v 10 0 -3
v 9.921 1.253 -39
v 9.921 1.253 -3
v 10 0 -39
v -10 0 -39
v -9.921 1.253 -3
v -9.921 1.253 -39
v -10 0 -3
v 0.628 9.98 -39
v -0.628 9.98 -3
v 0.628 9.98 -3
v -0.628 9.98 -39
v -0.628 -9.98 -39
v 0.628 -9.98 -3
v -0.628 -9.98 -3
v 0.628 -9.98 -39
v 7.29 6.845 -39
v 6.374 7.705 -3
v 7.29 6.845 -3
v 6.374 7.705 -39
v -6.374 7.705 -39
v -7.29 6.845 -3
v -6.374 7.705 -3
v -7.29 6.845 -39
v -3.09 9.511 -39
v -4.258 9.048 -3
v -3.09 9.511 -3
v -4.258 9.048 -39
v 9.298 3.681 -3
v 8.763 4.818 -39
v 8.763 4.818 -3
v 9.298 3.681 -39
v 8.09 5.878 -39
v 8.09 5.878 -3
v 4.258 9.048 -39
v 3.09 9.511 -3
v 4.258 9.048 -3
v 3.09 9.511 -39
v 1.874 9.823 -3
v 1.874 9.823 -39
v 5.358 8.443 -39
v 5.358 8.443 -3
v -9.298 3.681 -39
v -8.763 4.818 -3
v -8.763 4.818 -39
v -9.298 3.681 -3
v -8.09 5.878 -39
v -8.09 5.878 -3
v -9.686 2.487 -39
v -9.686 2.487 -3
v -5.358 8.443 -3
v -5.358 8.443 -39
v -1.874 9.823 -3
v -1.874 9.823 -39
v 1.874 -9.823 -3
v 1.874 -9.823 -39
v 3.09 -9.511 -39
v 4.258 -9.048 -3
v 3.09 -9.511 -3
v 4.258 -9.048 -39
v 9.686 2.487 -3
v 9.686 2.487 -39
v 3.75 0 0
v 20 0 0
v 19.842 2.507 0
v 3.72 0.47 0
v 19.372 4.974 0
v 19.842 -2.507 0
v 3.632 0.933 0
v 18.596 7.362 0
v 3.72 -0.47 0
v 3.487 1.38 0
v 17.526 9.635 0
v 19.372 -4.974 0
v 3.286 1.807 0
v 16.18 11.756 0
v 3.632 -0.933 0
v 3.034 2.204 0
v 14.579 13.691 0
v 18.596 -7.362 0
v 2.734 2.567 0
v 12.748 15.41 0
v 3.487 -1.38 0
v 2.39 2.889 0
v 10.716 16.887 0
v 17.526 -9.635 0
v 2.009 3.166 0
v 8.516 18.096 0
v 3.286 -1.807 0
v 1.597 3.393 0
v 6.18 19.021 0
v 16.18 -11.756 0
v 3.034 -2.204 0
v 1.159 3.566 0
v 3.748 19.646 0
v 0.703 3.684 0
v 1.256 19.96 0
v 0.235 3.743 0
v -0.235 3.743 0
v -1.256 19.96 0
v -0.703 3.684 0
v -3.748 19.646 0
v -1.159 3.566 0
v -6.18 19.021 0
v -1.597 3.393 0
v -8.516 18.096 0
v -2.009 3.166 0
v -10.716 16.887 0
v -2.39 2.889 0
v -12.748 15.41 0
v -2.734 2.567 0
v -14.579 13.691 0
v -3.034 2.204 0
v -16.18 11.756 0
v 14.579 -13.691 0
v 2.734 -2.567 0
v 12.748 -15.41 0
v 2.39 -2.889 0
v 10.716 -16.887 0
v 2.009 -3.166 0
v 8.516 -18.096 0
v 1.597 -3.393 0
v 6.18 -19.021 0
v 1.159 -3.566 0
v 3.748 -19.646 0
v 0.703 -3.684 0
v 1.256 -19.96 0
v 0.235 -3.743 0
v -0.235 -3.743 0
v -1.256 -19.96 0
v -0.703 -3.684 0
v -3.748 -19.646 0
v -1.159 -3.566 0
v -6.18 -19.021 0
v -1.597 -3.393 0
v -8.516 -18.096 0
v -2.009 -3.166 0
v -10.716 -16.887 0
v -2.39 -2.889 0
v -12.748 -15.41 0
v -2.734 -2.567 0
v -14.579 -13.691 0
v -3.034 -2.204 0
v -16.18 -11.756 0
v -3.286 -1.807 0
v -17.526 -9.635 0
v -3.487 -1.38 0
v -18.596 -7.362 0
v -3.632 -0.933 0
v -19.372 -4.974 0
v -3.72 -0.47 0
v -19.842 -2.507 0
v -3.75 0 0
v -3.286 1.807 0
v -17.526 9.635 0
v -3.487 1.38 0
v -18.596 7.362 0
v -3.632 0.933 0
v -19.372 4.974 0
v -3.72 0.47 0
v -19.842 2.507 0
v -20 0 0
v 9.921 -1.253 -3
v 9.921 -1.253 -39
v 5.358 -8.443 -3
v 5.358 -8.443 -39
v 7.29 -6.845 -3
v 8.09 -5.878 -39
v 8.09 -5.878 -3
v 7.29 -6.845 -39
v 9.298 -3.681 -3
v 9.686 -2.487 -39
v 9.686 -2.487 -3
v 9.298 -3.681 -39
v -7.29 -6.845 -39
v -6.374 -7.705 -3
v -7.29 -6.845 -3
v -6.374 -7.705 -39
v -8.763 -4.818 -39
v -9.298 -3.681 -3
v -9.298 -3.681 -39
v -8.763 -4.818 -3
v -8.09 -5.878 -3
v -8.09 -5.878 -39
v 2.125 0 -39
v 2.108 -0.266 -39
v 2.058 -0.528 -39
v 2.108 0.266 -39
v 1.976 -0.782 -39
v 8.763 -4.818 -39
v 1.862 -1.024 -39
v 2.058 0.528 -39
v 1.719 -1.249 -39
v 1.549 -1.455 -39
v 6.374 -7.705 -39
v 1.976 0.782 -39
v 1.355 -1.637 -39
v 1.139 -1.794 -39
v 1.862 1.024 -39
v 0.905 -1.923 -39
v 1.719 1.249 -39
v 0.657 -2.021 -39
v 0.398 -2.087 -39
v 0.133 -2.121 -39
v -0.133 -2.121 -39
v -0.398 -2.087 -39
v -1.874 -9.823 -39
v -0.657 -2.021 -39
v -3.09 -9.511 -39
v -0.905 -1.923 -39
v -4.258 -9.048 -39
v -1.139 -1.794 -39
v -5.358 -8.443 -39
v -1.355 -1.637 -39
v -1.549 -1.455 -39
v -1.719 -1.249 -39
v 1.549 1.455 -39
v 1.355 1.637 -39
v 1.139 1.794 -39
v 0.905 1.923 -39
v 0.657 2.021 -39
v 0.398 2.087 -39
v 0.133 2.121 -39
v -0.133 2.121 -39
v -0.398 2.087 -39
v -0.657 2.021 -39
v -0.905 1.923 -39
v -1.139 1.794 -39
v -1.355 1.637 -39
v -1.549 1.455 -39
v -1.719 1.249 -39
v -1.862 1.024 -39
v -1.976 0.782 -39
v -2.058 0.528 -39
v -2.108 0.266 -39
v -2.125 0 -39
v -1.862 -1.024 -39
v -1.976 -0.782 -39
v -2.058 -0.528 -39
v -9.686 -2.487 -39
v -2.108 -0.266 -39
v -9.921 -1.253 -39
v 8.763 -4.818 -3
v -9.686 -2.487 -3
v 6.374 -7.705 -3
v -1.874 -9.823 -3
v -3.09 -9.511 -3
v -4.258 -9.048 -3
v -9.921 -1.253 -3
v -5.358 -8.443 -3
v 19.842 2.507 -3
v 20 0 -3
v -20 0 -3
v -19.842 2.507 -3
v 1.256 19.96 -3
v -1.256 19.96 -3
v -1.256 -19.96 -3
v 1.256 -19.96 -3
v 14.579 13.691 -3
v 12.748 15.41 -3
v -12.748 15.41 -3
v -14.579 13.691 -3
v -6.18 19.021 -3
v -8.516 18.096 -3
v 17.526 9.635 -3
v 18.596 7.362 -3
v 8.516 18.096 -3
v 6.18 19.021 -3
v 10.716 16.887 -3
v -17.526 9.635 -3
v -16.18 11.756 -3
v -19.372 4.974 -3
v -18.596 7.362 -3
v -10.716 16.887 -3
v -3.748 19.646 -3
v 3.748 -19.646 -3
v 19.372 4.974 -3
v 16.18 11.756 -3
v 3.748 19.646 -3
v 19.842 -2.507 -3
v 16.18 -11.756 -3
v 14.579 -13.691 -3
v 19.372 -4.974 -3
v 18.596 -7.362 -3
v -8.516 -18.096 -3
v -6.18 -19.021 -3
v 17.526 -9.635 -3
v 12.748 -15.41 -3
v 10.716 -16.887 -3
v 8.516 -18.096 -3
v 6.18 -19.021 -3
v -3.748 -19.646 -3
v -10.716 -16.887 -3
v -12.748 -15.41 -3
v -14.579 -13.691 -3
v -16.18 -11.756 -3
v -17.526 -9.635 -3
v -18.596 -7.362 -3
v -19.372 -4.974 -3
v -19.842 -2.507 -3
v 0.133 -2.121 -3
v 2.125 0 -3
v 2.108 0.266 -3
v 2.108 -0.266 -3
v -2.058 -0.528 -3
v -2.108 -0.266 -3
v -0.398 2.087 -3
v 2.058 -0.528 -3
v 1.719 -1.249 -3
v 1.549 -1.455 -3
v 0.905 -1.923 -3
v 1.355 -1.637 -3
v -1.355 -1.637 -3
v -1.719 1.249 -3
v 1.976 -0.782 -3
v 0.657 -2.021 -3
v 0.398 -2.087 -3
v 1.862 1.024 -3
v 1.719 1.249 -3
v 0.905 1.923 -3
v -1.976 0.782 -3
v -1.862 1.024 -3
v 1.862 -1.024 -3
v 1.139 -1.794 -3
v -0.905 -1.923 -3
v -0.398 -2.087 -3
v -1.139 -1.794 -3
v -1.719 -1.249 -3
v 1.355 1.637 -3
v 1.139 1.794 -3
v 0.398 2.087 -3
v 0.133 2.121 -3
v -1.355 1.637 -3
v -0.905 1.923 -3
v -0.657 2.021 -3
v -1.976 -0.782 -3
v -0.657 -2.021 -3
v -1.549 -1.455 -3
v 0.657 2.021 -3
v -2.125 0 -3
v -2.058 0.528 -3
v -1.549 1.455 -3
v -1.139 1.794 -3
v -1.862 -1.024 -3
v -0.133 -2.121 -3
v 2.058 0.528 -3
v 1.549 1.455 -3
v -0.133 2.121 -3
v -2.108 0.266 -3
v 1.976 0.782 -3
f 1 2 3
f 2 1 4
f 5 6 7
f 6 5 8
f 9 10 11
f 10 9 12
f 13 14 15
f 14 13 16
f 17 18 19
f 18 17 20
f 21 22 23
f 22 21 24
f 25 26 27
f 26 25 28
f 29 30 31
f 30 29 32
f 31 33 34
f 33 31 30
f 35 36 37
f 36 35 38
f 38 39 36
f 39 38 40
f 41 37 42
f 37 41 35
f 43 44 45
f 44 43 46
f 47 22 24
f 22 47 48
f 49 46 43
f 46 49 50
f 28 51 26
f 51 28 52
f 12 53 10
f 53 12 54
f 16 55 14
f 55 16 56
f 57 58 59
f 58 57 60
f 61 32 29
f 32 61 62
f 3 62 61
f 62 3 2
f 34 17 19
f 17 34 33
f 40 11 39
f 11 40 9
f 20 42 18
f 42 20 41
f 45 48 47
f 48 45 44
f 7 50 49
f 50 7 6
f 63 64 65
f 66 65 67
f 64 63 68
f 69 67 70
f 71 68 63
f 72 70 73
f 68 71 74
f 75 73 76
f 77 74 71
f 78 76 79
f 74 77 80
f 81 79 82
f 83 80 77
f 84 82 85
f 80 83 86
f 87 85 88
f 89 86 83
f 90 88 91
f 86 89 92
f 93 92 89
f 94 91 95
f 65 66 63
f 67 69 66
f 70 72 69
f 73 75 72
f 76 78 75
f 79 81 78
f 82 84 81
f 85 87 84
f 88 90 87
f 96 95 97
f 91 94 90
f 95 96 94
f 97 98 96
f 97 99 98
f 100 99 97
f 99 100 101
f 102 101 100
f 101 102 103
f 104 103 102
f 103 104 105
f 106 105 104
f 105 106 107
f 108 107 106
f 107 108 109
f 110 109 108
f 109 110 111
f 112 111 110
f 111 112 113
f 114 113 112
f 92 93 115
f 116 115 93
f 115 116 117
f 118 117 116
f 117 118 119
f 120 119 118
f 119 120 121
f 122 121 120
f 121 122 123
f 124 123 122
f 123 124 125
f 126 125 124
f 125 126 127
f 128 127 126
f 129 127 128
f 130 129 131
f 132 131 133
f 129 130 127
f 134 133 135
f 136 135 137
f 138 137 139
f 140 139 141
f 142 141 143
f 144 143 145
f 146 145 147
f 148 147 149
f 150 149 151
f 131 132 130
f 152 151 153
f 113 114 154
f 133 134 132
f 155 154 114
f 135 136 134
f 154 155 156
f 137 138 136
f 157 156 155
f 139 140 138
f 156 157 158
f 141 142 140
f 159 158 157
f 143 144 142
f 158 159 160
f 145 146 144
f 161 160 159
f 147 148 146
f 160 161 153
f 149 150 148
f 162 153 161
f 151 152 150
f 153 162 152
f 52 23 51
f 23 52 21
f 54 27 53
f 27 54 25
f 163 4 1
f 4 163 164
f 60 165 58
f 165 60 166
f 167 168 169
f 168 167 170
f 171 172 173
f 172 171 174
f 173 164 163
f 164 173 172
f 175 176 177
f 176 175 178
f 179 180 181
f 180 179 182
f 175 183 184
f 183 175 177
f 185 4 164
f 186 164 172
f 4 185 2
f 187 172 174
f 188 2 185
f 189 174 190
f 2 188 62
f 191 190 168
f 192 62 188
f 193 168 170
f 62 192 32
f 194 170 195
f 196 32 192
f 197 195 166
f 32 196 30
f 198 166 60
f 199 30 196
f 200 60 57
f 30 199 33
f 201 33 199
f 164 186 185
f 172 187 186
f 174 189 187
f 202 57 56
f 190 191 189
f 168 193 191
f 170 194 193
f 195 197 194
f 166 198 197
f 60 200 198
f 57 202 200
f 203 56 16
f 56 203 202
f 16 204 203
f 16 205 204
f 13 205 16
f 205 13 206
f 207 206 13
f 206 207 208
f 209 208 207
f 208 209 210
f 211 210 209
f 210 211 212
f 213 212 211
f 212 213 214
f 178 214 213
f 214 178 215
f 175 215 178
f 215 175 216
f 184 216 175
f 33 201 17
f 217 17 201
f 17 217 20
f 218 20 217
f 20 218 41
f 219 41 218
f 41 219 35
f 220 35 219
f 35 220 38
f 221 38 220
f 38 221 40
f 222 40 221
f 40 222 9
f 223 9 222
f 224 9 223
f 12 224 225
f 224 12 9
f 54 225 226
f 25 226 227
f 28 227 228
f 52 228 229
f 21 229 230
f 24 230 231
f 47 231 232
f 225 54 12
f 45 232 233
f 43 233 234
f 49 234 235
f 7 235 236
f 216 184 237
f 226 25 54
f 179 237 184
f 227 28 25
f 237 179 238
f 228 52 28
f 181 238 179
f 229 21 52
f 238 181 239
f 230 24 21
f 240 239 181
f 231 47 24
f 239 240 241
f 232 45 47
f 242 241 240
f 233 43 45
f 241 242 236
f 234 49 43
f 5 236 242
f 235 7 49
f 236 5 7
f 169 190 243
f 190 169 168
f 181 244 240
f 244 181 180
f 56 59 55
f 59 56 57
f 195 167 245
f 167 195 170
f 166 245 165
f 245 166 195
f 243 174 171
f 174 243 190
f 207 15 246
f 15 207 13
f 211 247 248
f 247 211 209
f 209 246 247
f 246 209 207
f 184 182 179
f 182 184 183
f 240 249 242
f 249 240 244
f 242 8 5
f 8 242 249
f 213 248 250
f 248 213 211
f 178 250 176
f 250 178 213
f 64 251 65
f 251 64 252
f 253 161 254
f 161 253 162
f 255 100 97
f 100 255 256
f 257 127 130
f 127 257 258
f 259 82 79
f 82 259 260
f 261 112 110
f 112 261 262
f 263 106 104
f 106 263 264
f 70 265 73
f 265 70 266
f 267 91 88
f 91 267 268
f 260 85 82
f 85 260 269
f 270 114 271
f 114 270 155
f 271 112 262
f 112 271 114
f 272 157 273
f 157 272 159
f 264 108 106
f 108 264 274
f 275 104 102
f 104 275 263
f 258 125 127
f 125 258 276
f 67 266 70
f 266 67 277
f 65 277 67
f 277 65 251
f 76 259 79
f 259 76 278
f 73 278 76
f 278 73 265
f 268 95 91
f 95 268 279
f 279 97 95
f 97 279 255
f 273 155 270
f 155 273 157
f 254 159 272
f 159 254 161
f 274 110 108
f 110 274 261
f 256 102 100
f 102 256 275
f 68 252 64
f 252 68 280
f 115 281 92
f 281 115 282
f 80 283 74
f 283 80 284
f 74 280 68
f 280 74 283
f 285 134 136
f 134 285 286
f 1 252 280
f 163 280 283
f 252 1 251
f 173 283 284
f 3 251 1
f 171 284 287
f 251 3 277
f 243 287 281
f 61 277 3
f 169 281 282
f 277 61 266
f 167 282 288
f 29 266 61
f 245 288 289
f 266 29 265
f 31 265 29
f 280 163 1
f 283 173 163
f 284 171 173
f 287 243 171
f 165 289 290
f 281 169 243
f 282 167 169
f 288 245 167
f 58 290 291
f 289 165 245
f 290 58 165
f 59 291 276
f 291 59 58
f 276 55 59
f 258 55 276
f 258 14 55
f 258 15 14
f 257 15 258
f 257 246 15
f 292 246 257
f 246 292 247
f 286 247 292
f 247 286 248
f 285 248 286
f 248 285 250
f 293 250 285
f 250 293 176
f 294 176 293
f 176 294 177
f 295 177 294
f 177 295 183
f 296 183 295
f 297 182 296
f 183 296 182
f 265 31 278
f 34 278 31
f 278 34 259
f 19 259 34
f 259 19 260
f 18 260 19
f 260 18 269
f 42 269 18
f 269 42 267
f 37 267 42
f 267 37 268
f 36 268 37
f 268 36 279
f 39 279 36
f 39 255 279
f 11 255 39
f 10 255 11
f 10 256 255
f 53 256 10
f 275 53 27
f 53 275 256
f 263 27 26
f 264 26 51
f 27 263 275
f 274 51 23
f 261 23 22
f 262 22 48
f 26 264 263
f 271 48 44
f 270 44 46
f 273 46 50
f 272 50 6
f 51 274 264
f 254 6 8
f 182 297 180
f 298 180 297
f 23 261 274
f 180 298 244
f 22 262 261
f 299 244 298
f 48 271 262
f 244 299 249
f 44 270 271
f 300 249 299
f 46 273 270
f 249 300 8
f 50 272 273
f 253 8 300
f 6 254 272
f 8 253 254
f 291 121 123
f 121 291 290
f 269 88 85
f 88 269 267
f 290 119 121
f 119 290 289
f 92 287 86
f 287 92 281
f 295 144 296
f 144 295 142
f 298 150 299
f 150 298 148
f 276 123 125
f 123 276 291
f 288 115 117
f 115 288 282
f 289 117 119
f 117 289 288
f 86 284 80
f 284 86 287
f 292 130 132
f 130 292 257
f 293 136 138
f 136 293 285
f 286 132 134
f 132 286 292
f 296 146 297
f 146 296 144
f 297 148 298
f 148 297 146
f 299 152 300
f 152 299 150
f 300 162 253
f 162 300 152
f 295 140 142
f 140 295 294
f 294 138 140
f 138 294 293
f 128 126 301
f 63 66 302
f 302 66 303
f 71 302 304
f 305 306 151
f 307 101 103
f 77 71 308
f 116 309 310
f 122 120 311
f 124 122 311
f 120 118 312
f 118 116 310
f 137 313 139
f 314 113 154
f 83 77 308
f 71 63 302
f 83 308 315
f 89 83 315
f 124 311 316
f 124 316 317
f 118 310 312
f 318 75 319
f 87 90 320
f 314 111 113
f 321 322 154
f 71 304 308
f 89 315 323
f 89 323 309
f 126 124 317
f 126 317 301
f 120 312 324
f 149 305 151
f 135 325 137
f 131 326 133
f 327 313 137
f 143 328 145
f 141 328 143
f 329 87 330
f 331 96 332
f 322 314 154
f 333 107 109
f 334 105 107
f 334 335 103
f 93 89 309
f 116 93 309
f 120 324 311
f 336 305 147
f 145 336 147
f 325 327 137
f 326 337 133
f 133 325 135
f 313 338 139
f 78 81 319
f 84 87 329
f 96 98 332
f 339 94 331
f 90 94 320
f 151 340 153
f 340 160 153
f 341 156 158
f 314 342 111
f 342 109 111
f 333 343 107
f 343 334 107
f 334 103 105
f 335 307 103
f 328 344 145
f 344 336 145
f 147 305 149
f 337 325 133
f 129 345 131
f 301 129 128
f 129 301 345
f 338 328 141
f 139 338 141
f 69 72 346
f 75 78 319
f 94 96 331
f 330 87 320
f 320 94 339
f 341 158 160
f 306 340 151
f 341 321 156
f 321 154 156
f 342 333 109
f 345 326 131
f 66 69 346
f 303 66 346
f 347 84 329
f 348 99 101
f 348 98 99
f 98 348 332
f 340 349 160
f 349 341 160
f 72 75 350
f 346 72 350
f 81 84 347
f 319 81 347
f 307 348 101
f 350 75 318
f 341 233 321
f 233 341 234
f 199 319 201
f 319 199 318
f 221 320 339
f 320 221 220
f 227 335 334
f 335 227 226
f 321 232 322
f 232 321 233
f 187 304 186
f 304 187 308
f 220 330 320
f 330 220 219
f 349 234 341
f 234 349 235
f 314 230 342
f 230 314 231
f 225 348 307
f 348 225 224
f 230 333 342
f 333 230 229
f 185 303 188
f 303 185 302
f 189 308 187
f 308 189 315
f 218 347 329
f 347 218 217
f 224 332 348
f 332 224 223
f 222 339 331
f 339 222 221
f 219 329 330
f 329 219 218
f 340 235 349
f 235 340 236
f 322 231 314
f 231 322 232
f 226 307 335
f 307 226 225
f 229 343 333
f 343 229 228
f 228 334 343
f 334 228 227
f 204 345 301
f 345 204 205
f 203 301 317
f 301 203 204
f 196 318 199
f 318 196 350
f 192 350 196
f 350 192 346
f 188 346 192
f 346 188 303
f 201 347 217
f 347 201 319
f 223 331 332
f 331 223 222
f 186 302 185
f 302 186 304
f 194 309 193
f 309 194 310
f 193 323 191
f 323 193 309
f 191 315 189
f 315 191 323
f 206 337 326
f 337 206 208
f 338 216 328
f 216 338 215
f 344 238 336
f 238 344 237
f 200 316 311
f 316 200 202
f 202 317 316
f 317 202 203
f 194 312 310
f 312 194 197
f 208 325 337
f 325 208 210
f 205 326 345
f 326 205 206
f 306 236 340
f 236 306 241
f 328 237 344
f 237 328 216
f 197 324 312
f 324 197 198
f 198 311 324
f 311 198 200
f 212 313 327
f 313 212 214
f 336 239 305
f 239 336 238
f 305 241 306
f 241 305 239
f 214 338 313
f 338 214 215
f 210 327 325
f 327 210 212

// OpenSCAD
$fn = 50;


difference() {
	union() {
		translate(v = [0, 0, -39.0000000000]) {
			cylinder(h = 39, r = 10.0000000000);
		}
		translate(v = [0, 0, -3.0000000000]) {
			cylinder(h = 3, r = 20.0000000000);
		}
	}
	union() {
		translate(v = [0, 0, 0]) {
			rotate(a = [0, 0, 0]) {
				difference() {
					union() {
						#translate(v = [0, 0, -39.0000000000]) {
							cylinder(h = 39, r = 2.0000000000);
						}
						#translate(v = [0, 0, -3]) {
							cylinder(h = 3, r = 10.0000000000, r1 = 2.1250000000, r2 = 3.7500000000);
						}
						#translate(v = [0, 0, -39.0000000000]) {
							cylinder(h = 39, r = 2.1250000000);
						}
						#translate(v = [0, 0, -39.0000000000]) {
							cylinder(h = 39, r = 2.0000000000);
						}
					}
					union();
				}
			}
		}
	}
}
